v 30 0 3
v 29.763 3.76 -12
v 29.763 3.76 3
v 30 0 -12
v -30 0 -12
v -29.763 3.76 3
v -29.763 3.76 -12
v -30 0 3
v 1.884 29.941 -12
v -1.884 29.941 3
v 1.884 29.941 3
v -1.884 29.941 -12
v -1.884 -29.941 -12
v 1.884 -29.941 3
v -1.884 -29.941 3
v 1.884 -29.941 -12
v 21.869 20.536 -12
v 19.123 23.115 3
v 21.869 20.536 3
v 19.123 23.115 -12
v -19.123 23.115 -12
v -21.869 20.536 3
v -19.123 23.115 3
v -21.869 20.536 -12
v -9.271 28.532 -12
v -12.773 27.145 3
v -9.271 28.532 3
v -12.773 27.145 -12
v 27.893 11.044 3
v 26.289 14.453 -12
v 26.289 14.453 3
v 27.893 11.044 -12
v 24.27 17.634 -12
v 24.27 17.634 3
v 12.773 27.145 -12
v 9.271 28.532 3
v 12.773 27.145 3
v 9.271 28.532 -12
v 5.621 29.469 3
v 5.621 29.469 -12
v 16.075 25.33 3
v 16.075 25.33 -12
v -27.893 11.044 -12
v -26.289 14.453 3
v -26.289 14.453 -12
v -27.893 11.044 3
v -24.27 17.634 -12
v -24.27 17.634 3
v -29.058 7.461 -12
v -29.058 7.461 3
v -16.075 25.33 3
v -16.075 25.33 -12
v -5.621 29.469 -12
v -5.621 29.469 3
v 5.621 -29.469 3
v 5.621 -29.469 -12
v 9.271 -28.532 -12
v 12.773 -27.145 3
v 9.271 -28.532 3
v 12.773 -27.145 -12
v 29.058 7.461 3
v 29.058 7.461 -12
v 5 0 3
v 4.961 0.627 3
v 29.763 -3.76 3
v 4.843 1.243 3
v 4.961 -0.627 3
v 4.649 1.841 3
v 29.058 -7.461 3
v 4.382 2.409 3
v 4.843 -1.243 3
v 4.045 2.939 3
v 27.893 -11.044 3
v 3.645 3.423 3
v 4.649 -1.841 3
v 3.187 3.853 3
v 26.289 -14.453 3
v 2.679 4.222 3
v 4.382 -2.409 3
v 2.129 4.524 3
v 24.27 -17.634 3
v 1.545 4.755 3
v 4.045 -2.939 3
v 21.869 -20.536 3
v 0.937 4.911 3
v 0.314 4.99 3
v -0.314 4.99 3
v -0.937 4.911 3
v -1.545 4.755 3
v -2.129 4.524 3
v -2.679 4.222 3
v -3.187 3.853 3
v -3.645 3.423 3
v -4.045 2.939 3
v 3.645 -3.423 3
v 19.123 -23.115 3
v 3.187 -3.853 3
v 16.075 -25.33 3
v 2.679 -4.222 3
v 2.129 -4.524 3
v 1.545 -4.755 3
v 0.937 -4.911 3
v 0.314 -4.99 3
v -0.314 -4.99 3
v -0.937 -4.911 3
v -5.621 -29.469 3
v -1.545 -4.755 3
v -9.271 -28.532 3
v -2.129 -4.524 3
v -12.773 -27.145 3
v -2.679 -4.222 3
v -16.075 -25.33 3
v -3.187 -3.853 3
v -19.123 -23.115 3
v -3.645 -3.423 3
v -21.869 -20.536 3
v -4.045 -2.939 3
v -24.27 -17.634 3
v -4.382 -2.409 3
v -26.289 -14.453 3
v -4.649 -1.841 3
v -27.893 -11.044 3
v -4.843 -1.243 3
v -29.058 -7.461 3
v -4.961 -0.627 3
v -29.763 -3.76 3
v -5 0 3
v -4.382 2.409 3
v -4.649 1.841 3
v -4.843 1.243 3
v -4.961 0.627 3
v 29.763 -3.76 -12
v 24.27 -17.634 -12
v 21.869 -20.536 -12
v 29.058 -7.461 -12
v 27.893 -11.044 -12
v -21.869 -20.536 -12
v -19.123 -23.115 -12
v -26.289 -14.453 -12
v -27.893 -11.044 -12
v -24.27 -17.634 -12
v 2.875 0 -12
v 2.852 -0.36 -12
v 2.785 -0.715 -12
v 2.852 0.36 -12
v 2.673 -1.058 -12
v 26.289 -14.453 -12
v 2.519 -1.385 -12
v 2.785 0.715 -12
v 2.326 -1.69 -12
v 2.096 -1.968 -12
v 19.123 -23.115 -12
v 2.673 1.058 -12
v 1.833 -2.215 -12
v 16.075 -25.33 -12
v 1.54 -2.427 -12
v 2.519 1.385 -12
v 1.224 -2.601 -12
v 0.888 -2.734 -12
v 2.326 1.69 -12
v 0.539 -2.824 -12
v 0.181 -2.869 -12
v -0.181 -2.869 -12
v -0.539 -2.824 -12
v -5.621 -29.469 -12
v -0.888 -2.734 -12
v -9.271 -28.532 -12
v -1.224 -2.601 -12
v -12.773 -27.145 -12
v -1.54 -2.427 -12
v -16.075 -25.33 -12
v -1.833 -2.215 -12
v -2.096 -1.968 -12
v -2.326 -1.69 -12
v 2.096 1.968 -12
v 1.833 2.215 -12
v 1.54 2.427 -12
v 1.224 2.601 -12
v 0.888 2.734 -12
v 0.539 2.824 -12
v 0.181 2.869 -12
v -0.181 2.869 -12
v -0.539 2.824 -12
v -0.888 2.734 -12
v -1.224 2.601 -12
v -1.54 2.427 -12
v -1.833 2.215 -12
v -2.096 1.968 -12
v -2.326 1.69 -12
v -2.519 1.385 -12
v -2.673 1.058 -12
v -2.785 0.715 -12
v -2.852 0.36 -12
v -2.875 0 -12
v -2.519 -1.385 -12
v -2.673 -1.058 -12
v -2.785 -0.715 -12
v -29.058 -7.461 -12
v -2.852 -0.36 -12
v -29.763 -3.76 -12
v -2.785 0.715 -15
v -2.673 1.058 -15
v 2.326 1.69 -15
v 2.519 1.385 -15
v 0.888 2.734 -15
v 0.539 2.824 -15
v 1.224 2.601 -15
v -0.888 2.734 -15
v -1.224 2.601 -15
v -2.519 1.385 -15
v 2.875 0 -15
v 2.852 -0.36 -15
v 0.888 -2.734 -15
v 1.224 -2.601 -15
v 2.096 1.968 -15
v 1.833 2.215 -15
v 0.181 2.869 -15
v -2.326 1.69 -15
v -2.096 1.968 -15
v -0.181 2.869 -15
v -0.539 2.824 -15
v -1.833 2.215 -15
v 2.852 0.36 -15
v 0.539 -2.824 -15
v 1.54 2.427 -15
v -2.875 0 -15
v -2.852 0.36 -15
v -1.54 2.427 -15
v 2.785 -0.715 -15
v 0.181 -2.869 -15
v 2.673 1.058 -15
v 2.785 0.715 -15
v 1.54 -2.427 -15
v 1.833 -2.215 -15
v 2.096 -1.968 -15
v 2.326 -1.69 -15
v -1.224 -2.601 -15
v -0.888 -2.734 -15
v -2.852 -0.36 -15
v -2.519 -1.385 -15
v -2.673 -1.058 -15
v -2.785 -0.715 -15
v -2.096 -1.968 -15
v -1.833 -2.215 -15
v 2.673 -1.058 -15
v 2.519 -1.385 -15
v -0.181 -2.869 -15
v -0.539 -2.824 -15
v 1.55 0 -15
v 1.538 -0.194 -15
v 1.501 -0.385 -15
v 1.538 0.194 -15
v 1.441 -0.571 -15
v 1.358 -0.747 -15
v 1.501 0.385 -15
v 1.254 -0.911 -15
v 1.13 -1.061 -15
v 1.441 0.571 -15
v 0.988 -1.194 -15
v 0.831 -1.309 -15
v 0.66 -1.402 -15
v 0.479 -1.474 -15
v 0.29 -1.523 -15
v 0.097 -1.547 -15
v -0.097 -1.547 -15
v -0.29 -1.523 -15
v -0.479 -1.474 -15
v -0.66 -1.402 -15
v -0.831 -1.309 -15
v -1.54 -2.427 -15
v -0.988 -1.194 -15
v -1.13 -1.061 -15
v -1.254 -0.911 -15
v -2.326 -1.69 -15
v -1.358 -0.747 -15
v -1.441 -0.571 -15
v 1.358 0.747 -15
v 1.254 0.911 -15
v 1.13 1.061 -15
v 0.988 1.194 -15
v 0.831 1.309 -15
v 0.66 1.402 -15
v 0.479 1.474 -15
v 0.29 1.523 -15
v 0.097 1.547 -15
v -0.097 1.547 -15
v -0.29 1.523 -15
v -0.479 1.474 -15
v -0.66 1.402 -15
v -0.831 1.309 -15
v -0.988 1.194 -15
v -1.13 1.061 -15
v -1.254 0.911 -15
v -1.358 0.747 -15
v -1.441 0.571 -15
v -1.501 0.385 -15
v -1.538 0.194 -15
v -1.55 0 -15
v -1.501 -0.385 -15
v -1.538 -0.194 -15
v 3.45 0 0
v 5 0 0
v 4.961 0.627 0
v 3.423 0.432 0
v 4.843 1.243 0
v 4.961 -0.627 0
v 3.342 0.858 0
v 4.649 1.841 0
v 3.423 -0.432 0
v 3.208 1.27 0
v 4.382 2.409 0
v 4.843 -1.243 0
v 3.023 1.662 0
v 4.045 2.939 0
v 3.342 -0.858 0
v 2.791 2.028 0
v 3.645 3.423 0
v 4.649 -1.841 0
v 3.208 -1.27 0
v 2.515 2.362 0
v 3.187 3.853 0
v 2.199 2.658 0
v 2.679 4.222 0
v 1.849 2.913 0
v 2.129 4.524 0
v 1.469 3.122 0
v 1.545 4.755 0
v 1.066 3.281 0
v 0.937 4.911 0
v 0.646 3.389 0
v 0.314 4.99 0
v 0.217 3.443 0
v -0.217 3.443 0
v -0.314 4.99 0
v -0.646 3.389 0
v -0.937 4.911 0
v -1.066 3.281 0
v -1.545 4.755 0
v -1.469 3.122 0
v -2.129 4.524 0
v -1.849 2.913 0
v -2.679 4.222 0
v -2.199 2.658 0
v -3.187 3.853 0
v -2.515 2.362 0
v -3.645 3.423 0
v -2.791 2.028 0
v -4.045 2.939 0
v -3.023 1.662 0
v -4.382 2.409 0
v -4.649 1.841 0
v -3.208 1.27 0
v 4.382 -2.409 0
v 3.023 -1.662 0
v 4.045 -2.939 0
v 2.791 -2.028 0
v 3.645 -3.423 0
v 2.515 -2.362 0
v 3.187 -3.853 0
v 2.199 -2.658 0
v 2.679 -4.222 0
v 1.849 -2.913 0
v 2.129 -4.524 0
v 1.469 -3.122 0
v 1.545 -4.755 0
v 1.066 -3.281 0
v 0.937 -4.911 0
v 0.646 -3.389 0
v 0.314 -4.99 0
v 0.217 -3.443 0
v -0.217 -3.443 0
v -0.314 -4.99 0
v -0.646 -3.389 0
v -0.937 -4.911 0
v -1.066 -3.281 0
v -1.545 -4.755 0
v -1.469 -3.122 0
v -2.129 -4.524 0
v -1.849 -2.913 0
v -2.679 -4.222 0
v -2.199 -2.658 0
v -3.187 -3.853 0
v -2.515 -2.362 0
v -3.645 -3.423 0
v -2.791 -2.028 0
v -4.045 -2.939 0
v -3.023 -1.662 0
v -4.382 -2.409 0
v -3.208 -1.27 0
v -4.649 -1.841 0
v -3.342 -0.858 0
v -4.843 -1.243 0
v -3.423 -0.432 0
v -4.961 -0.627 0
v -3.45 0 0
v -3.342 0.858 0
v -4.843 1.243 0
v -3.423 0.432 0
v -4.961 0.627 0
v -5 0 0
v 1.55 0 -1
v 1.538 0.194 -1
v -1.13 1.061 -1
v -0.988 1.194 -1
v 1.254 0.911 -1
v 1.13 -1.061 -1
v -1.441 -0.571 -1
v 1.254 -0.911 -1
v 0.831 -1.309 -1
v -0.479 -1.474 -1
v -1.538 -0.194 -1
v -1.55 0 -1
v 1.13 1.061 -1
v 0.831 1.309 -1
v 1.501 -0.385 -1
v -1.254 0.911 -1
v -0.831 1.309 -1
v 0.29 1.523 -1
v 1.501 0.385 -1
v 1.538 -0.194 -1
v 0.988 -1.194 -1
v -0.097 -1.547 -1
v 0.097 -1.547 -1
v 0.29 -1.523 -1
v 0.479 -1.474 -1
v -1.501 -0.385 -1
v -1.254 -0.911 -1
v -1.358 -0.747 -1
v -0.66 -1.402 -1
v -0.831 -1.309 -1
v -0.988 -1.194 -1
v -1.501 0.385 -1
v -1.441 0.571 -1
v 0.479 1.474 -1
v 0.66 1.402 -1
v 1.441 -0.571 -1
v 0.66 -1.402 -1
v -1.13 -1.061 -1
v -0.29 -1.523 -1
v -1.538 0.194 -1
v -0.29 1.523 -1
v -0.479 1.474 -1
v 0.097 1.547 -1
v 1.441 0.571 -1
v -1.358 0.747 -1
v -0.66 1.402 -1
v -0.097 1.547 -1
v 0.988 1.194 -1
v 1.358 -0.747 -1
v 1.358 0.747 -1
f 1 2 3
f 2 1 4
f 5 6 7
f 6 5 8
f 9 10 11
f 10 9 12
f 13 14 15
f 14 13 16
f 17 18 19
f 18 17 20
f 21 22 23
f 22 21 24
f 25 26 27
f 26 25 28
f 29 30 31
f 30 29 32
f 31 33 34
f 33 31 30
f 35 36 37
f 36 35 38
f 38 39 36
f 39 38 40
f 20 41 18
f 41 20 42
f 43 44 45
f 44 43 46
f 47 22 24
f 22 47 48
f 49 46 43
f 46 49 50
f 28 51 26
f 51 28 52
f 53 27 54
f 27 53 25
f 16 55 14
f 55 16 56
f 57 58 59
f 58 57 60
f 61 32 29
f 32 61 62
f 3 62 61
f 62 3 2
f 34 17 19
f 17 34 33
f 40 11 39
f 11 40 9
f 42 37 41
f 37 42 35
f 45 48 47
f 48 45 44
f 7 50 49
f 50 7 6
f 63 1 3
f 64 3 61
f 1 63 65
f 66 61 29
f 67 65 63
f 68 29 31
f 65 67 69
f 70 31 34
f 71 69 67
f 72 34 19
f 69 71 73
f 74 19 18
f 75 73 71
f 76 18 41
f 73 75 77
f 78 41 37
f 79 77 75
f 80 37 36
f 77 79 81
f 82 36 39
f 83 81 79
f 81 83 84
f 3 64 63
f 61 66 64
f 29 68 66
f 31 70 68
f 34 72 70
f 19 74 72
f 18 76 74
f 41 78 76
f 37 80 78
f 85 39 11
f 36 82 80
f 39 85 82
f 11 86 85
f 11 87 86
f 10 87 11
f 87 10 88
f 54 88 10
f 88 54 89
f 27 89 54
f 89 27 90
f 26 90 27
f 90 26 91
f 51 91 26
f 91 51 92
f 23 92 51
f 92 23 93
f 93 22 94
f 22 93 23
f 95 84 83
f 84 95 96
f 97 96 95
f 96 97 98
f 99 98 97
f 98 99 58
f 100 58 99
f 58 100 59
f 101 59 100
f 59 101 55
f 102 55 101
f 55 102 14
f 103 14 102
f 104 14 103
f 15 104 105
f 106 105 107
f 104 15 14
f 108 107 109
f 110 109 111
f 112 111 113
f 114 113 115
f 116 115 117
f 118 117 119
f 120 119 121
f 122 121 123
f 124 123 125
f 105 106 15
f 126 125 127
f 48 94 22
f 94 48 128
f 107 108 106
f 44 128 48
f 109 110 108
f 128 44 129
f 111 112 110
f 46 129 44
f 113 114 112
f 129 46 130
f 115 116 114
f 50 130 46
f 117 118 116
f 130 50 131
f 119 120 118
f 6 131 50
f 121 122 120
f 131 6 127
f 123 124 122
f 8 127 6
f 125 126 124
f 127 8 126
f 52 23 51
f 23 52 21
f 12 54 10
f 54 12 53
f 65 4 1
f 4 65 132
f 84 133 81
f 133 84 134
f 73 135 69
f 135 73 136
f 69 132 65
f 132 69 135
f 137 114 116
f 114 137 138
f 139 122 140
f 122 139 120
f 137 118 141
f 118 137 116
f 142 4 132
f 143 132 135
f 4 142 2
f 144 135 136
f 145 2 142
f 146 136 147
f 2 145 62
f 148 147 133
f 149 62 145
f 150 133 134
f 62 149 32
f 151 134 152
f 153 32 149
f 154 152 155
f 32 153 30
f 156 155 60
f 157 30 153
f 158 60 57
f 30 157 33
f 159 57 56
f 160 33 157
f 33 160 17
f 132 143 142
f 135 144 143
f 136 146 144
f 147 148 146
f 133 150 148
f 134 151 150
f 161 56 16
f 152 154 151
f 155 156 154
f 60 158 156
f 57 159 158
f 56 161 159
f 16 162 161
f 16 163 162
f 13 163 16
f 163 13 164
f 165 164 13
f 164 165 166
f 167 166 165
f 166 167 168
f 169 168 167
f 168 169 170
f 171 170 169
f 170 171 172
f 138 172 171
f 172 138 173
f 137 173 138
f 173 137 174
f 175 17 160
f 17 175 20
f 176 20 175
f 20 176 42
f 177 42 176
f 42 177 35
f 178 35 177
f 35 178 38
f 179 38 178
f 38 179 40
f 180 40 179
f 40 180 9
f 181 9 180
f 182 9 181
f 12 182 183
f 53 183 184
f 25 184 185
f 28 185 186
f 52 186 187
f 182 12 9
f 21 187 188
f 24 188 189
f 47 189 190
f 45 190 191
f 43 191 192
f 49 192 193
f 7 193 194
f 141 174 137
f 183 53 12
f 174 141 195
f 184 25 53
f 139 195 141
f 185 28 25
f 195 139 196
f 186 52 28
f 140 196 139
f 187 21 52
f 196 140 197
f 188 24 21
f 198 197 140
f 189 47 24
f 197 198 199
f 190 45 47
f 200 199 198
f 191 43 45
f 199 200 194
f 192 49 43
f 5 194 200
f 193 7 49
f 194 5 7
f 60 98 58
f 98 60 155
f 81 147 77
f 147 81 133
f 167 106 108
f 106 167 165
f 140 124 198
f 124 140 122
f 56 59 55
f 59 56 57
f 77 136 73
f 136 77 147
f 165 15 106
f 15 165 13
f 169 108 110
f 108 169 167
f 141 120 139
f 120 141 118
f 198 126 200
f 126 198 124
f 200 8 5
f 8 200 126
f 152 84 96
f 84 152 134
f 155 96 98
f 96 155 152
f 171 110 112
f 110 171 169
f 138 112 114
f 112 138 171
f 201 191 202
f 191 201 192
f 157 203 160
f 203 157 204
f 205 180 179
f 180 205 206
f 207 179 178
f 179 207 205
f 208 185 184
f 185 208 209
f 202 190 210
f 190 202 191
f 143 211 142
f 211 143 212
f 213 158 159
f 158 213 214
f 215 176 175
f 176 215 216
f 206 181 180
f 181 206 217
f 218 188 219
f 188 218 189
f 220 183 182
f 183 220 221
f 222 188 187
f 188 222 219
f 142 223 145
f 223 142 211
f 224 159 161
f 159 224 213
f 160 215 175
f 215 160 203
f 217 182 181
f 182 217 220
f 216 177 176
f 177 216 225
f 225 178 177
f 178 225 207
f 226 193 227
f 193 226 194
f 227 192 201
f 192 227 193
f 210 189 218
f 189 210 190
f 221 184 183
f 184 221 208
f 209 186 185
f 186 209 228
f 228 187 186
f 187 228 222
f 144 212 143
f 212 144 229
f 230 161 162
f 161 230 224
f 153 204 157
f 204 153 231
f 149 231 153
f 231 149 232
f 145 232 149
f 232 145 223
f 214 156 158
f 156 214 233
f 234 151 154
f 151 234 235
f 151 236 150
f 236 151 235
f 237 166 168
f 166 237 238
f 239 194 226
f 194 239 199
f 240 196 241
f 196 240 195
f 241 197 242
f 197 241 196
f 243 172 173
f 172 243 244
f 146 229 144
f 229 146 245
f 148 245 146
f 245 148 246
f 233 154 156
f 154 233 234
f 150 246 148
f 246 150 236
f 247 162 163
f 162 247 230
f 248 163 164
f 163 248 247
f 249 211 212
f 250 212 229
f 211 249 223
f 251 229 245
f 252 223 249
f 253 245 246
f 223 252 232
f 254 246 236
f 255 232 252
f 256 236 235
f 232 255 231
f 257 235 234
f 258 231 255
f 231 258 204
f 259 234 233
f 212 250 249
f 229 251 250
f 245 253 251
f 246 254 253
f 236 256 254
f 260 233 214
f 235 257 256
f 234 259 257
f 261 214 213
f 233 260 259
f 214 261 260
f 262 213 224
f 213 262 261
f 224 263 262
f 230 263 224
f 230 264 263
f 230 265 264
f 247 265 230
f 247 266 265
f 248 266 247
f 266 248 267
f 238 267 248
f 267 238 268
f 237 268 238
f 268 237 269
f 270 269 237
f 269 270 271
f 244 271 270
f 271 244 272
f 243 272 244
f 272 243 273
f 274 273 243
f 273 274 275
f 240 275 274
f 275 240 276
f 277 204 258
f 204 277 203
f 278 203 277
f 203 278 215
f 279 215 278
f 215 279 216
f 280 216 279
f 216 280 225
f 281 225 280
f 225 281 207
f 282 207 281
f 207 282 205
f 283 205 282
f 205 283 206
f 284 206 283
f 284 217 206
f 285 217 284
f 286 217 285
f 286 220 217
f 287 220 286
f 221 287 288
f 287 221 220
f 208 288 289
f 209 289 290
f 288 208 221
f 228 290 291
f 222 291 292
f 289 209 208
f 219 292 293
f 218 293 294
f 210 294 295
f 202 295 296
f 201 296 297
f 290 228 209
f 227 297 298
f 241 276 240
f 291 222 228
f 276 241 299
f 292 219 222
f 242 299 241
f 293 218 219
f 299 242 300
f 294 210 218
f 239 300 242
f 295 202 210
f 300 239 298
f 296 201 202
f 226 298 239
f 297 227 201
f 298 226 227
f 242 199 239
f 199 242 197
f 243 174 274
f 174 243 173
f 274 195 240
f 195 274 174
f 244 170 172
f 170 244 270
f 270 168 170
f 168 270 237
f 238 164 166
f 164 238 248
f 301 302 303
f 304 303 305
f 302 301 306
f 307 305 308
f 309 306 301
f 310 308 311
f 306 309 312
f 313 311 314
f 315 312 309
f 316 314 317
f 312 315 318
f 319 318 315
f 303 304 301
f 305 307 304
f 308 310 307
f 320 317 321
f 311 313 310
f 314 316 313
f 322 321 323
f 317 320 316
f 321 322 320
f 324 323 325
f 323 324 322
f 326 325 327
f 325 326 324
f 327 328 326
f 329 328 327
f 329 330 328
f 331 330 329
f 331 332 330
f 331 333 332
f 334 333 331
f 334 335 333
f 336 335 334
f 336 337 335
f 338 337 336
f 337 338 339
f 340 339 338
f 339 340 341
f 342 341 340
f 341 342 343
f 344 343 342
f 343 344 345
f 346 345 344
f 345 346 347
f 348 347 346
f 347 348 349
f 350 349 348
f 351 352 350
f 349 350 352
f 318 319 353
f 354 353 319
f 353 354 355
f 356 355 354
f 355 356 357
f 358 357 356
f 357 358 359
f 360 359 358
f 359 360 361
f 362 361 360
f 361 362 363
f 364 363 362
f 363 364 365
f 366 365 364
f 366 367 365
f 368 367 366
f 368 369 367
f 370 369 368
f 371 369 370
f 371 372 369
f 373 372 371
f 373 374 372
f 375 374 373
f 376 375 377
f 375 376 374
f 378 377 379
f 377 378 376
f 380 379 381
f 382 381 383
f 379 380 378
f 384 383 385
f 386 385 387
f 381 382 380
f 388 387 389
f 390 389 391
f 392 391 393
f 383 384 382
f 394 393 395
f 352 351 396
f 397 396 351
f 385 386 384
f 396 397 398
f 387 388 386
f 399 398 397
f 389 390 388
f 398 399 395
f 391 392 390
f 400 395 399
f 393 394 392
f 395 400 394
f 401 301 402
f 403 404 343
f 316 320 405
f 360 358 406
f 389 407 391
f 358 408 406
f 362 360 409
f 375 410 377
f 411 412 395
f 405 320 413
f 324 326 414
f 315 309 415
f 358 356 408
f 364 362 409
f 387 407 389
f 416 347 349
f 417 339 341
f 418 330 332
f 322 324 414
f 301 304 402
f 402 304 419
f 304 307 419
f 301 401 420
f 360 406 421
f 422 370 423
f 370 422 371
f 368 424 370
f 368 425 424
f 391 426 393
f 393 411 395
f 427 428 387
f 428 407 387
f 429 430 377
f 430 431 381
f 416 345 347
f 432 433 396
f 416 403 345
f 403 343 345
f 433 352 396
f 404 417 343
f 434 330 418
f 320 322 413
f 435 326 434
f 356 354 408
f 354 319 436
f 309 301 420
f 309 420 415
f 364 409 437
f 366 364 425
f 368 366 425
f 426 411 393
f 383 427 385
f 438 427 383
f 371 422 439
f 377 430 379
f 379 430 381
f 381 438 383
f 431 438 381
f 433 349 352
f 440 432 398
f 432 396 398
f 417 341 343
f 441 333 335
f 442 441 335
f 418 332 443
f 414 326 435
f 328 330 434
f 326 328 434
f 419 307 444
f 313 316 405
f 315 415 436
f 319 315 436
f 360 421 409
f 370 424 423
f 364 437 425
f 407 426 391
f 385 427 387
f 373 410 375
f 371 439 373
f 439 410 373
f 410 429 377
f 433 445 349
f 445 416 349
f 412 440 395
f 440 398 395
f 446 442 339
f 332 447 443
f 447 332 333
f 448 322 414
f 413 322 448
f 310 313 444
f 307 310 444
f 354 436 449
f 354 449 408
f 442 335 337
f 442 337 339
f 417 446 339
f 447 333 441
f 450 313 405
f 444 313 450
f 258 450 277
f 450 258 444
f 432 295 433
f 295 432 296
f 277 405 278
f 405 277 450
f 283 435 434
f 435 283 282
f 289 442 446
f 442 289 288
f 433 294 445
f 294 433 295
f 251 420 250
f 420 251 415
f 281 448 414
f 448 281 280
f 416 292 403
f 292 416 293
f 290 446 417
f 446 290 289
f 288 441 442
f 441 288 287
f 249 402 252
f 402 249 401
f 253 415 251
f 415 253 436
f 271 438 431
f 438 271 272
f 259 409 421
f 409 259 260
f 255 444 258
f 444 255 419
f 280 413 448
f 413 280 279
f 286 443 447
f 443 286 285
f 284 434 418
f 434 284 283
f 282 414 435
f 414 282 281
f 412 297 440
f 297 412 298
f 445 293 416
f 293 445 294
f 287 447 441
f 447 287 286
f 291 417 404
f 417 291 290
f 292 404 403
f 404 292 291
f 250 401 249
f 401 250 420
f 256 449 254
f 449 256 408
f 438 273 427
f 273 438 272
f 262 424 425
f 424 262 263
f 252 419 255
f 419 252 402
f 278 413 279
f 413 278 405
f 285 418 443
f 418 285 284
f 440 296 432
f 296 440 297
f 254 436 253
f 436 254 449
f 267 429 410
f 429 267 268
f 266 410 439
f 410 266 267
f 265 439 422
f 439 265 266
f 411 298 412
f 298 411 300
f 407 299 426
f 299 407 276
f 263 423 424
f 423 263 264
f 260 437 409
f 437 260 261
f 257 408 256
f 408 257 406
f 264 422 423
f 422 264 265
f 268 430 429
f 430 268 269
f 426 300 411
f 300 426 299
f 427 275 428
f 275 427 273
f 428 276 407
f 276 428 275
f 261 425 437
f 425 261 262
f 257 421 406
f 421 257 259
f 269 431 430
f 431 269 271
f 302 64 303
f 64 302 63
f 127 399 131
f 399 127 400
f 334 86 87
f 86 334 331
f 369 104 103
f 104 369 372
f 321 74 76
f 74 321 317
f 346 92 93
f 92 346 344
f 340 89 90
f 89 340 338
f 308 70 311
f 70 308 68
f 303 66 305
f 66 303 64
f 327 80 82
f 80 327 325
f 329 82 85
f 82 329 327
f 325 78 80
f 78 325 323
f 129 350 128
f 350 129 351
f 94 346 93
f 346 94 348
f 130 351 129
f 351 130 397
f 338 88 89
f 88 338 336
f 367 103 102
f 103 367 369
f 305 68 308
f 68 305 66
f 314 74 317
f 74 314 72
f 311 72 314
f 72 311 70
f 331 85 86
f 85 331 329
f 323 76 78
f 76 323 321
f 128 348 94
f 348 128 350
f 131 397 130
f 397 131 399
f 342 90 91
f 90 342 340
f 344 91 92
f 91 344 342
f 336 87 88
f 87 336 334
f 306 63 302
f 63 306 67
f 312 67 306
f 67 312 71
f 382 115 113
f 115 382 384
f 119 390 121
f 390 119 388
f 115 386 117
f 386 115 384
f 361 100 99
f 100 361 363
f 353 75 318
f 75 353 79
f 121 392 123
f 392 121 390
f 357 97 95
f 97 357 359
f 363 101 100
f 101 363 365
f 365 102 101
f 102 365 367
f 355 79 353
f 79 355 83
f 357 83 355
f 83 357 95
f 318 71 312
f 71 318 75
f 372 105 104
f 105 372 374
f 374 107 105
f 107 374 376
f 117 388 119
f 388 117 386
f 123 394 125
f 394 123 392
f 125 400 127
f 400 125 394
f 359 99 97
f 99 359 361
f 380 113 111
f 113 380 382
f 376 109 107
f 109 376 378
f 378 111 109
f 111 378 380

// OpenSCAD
$fn = 50;


difference() {
	union() {
		translate(v = [0, 0, -12.0000000000]) {
			cylinder(h = 15, r = 30.0000000000);
		}
		#translate(v = [0, 0, -15.0000000000]) {
			cylinder(h = 15, r = 2.8750000000);
		}
	}
	union() {
		translate(v = [0, 0, 0]) {
			rotate(a = [0, 0, 0]) {
				difference() {
					union() {
						translate(v = [0, 0, -15.0000000000]) {
							cylinder(h = 15, r = 1.2500000000);
						}
						translate(v = [0, 0, -1.0000000000]) {
							cylinder(h = 1.0000000000, r1 = 1.5500000000, r2 = 3.4500000000);
						}
						translate(v = [0, 0, -15.0000000000]) {
							cylinder(h = 15, r = 1.5500000000);
						}
						translate(v = [0, 0, -15.0000000000]) {
							cylinder(h = 15, r = 1.2500000000);
						}
					}
					union();
				}
			}
		}
		#cylinder(h = 3, r = 5.0000000000);
	}
}
